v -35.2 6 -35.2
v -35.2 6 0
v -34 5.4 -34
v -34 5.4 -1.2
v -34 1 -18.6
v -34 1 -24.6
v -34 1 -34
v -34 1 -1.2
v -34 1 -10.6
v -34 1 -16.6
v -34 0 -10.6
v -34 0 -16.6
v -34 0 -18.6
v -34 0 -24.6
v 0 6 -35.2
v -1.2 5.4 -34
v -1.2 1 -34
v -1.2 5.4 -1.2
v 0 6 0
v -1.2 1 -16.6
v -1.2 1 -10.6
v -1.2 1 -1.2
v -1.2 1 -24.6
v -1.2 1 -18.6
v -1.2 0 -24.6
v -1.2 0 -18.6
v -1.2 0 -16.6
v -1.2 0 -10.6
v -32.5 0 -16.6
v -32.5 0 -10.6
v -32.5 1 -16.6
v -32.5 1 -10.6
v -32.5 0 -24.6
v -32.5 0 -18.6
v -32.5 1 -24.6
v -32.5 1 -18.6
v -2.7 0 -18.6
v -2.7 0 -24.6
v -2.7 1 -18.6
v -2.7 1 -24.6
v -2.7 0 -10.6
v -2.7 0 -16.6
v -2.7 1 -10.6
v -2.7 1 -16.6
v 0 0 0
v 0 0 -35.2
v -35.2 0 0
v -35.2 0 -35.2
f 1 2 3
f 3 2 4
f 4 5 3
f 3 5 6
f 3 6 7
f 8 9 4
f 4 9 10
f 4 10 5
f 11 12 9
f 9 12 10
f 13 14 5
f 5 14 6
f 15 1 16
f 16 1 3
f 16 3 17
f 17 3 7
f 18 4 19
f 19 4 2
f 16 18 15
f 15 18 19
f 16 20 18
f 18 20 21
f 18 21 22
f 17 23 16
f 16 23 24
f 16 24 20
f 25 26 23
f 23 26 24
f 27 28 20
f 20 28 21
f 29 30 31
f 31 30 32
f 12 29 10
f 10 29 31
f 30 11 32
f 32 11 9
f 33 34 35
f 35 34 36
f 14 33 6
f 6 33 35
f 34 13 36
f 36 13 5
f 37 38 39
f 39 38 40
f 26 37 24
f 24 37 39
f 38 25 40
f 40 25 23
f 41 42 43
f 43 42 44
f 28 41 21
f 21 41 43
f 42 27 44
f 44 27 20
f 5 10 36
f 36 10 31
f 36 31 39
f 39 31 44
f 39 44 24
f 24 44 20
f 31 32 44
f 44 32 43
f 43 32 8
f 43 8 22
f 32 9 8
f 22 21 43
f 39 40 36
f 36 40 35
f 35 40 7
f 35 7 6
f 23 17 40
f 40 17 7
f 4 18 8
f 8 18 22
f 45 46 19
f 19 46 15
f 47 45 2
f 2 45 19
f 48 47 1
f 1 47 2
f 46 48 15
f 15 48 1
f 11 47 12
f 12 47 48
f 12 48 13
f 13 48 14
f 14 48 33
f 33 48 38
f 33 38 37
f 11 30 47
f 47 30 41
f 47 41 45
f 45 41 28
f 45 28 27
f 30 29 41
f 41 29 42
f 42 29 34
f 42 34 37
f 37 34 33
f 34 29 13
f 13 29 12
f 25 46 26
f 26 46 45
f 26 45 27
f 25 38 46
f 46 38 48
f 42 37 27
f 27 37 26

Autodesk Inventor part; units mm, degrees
ref_plane "YZ Plane" through (0, 0, 0) normal (1, 0, 0) x (0, 1, 0)
ref_plane "XZ Plane" through (0, 0, 0) normal (0, 1, 0) x (-1, 0, 0)
ref_plane "XY Plane" through (0, 0, 0) normal (0, 0, 1) x (1, 0, 0)
sketch "Sketch1" plane through (0, 0, 0) normal (0, 1, 0) x (-1, 0, 0)
  point P0 (0, 0)
sketch "Sketch2" plane through (0, 0, 0) normal (0, 1, 0) x (-1, 0, 0)
  line L0 (0, 0) -> (35.2, 0)
  line L1 (35.2, 0) -> (35.2, -35.2)
  line L2 (35.2, -35.2) -> (0, -35.2)
  line L3 (0, -35.2) -> (0, 0)
  dimension "d0" = 35.2
  dimension "d1" = 35.2
extrude "Extrusion1" add sketch "Sketch2" along normal blind 1
sketch "Sketch3" plane through (0, 1, 0) normal (0, 1, 0) x (1, 0, 0)
  line L0 (0, 35.2) -> (-35.2, 35.2) projected
  line L1 (-35.2, 35.2) -> (-35.2, 0) projected
  line L2 (-35.2, 0) -> (0, 0) projected
  line L3 (0, 0) -> (0, 35.2) projected
  line L4 (-35.2, 0) -> (0, 0) projected
  line L5 (0, 0) -> (-1.2, 0)
  line L6 (-1.2, 0) -> (-1.2, 1.2)
  line L7 (-1.2, 1.2) -> (-34, 1.2)
  line L8 (-34, 1.2) -> (-34, 34)
  line L9 (-34, 34) -> (-1.2, 34)
  line L10 (-1.2, 34) -> (-1.2, 1.2)
  dimension "d4" = 1.2
  dimension "d5" = 1.2
  dimension "d6" = 32.8
  dimension "d7" = 32.8
extrude "Extrusion2" add sketch "Sketch3" along normal blind 5
sketch "Sketch4" plane through (0, 1, 0) normal (0, 1, 0) x (1, 0, 0)
  line L0 (-1.2, 1.2) -> (-1.2, 34) projected
  line L1 (-1.2, 34) -> (-34, 34) projected
  line L2 (-34, 34) -> (-34, 1.2) projected
  line L3 (-34, 1.2) -> (-1.2, 1.2) projected
  line L4 (-1.2, 1.2) -> (-1.2, 34) projected
  line L5 (-1.2, 17.6) -> (-34, 17.6)
  line L6 (-34, 34) -> (-1.2, 34) projected
  line L7 (-17.6, 34) -> (-17.6, 1.2)
  line L8 (-17.6, 17.6) -> (-17.6, 18.6)
  line L9 (-34, 17.6) -> (-34, 17.6)
  line L10 (-34, 1.2) -> (-34, 34) projected
  line L11 (-34, 17.6) -> (-32.5, 17.6)
  line L12 (-1.2, 17.6) -> (-1.2, 18.6)
  line L13 (-1.2, 18.6) -> (-2.7, 18.6)
  line L14 (-2.7, 18.6) -> (-2.7, 24.6)
  line L15 (-2.7, 24.6) -> (-1.2, 24.6)
  line L16 (-1.2, 17.6) -> (-1.2, 15.6)
  line L17 (-1.2, 17.6) -> (-1.2, 16.6)
  line L18 (-1.2, 34) -> (-1.2, 1.2) projected
  line L19 (-1.2, 16.6) -> (-2.7, 16.6)
  line L20 (-2.7, 16.6) -> (-2.7, 10.6)
  line L21 (-2.7, 10.6) -> (-1.2, 10.6)
  line L22 (-34, 17.6) -> (-34, 18.6)
  line L23 (-34, 1.2) -> (-34, 34) projected
  line L24 (-34, 18.6) -> (-32.5, 18.6)
  line L25 (-32.5, 18.6) -> (-32.5, 24.6)
  line L26 (-32.5, 24.6) -> (-34, 24.6)
  line L27 (-34, 17.6) -> (-34, 16.6)
  line L28 (-34, 16.6) -> (-32.5, 16.6)
  line L29 (-32.5, 16.6) -> (-32.5, 10.6)
  line L30 (-32.5, 10.6) -> (-34, 10.6)
  point P0 (0, 0)
  point P1 (-34, 23.6)
  dimension "d13" = 1
  dimension "d19" = 1.5
  dimension "d20" = 6
  dimension "d49" = 6
extrude "Extrusion3" cut sketch "Sketch4" against normal blind 4 contours L21 L20 L19 L0 | L2 L28 L29 L30 | L13 L14 L15 L0 | L2 L26 L25 L24
chamfer "Chamfer3" distance 1.2 distance2 0.6 1 edges at (-1.2, 6, -17.6) measured on face at (-34.8, 6, -23.0667)
chamfer "Chamfer4" distance 1.2 distance2 0.6 1 edges at (-17.6, 6, -1.2) measured on face at (-34.8, 6, -23.0667)
chamfer "Chamfer5" distance 1.2 distance2 0.6 1 edges at (-17.6, 6, -34) measured on face at (-34.8, 6, -23.0667)
chamfer "Chamfer6" distance 1.2 distance2 0.6 1 edges at (-34, 6, -17.6) measured on face at (-34.8, 6, -23.0667)
properties part number "led-compartment-2"
